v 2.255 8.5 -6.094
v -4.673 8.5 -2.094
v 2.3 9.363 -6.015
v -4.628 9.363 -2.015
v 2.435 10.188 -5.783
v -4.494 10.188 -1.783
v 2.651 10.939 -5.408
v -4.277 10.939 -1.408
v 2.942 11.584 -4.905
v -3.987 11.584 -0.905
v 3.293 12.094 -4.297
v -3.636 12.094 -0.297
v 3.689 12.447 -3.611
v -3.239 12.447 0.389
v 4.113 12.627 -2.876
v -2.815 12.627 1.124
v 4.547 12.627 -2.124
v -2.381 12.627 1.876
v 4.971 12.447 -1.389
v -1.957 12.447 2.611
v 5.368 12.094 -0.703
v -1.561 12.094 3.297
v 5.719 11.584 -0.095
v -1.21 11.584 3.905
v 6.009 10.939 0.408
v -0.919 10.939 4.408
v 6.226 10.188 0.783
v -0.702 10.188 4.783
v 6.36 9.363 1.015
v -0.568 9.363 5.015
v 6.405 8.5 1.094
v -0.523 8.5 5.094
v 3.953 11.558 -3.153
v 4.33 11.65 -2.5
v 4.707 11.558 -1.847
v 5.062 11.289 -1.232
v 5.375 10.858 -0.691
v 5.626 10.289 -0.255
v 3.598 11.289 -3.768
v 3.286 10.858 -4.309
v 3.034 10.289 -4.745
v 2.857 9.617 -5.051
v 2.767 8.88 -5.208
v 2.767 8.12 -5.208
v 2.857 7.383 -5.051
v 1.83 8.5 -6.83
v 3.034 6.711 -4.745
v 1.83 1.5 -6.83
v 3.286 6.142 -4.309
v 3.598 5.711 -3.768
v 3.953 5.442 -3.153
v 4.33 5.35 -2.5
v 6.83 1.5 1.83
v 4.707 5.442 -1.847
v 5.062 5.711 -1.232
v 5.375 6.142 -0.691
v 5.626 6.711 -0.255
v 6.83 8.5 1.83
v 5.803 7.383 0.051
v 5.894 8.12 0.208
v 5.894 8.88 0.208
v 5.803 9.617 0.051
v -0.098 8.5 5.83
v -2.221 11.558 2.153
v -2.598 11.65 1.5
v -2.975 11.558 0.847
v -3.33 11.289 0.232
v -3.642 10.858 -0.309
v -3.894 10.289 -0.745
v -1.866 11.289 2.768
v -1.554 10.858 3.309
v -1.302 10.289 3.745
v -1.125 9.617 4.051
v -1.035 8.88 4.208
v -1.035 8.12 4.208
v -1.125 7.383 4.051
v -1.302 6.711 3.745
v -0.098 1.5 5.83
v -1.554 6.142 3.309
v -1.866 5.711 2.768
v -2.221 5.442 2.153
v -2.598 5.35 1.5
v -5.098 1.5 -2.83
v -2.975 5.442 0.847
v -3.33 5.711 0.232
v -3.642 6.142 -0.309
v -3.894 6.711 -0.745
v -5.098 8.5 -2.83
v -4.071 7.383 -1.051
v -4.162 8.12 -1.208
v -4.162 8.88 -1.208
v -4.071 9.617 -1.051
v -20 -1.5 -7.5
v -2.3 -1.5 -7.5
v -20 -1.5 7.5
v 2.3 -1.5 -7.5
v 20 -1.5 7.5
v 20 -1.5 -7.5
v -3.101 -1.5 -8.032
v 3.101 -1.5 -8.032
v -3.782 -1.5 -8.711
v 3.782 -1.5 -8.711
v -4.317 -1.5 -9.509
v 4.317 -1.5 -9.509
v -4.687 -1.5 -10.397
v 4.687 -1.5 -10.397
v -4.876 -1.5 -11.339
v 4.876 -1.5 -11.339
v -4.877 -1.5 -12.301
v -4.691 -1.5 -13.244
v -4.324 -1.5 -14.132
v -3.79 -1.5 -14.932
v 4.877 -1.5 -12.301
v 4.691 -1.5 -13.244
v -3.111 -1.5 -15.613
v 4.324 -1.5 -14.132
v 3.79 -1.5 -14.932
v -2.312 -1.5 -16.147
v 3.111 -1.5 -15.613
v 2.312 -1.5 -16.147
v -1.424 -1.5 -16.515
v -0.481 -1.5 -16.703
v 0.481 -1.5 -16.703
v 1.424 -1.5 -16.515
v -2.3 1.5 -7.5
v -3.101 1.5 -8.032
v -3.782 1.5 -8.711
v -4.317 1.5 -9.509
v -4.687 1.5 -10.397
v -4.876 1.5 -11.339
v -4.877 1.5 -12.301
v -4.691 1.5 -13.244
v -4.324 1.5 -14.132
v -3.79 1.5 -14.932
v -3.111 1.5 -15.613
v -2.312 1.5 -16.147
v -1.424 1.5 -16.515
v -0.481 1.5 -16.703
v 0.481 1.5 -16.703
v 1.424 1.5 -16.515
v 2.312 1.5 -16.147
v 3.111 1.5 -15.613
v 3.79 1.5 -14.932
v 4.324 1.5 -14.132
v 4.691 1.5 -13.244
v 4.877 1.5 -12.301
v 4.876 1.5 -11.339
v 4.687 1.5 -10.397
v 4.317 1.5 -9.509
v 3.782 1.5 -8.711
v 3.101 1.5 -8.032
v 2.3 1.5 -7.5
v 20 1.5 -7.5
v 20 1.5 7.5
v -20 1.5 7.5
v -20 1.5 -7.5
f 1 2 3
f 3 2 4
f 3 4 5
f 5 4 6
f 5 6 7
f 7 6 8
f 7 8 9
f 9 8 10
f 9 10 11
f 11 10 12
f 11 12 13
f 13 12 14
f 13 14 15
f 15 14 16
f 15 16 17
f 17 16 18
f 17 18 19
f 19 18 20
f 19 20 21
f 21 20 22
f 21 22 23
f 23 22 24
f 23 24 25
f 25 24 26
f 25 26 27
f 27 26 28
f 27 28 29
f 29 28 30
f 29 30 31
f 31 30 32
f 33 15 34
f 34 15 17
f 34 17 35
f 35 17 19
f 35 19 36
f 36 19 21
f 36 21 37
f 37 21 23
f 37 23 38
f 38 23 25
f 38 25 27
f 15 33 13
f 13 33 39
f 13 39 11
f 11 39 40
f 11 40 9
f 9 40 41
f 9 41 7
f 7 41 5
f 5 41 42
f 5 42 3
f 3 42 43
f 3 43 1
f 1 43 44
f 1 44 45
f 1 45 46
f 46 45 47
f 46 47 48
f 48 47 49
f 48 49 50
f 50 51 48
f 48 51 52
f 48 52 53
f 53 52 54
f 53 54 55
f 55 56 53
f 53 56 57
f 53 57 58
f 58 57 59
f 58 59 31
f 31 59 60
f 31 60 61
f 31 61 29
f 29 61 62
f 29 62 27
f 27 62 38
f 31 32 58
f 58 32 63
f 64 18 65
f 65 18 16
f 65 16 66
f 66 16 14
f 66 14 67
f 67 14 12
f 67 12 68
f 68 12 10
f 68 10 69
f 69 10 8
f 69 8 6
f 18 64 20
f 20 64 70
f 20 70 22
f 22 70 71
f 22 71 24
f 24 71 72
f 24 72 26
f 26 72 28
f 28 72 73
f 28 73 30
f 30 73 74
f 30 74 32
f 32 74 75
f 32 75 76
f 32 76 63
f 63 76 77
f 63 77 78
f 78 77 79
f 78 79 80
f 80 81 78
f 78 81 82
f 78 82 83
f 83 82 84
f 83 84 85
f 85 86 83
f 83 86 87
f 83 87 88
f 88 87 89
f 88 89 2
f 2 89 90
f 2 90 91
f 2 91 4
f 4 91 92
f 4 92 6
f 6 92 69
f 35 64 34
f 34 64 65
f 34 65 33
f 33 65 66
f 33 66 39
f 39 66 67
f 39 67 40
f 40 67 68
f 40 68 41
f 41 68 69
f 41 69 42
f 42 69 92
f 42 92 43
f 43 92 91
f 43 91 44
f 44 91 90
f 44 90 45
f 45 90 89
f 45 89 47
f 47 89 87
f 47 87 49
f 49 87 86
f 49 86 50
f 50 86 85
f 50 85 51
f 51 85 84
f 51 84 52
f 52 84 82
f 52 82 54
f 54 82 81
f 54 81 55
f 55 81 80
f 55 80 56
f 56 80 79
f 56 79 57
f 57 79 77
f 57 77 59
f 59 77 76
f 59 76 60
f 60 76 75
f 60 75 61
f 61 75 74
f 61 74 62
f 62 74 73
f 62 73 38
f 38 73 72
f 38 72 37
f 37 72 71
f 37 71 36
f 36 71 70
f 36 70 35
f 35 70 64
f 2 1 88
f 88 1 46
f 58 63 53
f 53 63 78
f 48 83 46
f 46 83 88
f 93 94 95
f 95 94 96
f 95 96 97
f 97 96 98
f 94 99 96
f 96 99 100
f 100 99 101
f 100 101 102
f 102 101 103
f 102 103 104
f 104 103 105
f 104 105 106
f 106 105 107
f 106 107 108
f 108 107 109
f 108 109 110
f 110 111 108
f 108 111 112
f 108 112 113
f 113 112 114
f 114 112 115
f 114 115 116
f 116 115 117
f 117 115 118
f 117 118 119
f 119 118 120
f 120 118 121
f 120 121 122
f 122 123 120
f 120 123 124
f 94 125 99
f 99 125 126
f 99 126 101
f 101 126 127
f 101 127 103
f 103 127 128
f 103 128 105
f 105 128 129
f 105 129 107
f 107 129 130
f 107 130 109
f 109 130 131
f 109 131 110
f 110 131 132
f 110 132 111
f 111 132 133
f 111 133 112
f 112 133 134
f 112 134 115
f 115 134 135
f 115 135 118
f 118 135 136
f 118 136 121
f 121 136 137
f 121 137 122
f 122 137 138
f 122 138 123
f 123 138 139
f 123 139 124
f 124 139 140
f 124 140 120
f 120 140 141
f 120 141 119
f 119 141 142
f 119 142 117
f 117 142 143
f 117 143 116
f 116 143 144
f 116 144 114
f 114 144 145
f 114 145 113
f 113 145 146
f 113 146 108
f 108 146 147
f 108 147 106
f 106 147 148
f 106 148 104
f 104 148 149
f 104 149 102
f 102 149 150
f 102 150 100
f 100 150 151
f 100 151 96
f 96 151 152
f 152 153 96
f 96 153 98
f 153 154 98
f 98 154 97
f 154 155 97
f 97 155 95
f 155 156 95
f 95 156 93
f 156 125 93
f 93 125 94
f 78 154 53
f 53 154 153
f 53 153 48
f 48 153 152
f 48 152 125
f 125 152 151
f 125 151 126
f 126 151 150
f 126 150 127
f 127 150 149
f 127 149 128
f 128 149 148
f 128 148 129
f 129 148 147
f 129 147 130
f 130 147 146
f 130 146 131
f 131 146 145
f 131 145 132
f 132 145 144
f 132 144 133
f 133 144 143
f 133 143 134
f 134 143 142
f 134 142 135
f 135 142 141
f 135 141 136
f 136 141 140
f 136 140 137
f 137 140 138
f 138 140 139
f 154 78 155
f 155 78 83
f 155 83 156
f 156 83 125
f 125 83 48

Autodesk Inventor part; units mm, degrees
ref_plane "XZ Plane" through (0, 0, 0) normal (0, 1, 0) x (-1, 0, 0)
ref_plane "XY Plane" through (0, 0, 0) normal (0, 0, 1) x (1, 0, 0)
sketch "Sketch2" plane through (0, 0, 0) normal (0, 1, 0) x (-1, 0, 0)
  line L0 (-20, -7.5) -> (-20, 7.5)
  line L1 (-20, 7.5) -> (20, 7.5)
  line L2 (20, 7.5) -> (20, -7.5)
  arc A0 (-2.3, -7.5) -> (2.3, -7.5) centre (0, -11.8267) ccw
  line L3 (20, -7.5) -> (2.3, -7.5)
  line L4 (-2.3, -7.5) -> (-20, -7.5)
  point P0 (0, 0)
  point P1 (0, -7.5)
  point P2 (-20, 0)
  point P3 (0, -16.7267)
  dimension "d1" = 40
  dimension "d3" = 15
  dimension "d5" = 4.6
  dimension "d6" = 4.9
extrude "Extrusion1" add sketch "Sketch2" along normal mid plane 3
ref_plane "Work Plane1" through (0, 0, 0) normal (-0.5, 0, -0.866) x (0, 1, 0)
sketch "Sketch3" plane through (0, 0, 0) normal (-0.5, 0, -0.866) x (0, 1, 0)
  line L0 (1.5, 1.7581) -> (1.5, -13.5705) projected
  line L1 (8.5, -3) -> (1.5, -3)
  line L2 (1.5, -3) -> (1.5, 5)
  line L3 (1.5, 5) -> (8.5, 5)
  line L4 (8.5, 5) -> (8.5, -3)
  line L5 (8.5, 1) -> (1.5, 1) construction
  line L6 (6.35, 7) -> (7.35, 9) construction
  line L7 (7, 7) -> (8, 9) construction
  line L8 (8, 9) -> (7.35, 9) construction
  line L9 (7, 7) -> (6.35, 7)
  line L10 (8.5, -3) -> (11.65, -3)
  line L11 (11.65, -3) -> (11.65, 5)
  line L12 (11.65, 5) -> (8.5, 5)
  line L13 (7, 7) -> (6, 5)
  line L14 (6.35, 7) -> (5.35, 5)
  line L15 (8.5, -3) -> (12.65, -3)
  line L16 (12.65, -3) -> (12.65, 5)
  line L17 (12.65, 5) -> (8.5, 5)
  point P0 (0, 0)
  point P1 (5, 1)
  point P2 (1.5, -3)
  dimension "d10" = 8
  dimension "d11" = 7
  dimension "d15" = 4
  dimension "d16" = 1
  dimension "d17" = 2.3
  dimension "d18" = 6.3
  dimension "d19" = 6.3
  dimension "d22" = 8.3
  dimension "d25" = 1
extrude "Extrusion2" add sketch "Sketch3" along normal mid plane 10 contours L2 L3 L4 L1 L0
revolve "Revolution1" cut sketch "Sketch3" angle 360 about axis through (4.3301, 8.5, -2.5) along (-0.866, 0, 0.5) contours L4 L12 L11 L10
revolve "Revolution2" add sketch "Sketch3" angle 360 about axis through (4.3301, 8.5, -2.5) along (-0.866, 0, 0.5) contours L11 L17 L16 L15
equation "\"d19\" = d18"
properties part number "Nozzle Fixer"
